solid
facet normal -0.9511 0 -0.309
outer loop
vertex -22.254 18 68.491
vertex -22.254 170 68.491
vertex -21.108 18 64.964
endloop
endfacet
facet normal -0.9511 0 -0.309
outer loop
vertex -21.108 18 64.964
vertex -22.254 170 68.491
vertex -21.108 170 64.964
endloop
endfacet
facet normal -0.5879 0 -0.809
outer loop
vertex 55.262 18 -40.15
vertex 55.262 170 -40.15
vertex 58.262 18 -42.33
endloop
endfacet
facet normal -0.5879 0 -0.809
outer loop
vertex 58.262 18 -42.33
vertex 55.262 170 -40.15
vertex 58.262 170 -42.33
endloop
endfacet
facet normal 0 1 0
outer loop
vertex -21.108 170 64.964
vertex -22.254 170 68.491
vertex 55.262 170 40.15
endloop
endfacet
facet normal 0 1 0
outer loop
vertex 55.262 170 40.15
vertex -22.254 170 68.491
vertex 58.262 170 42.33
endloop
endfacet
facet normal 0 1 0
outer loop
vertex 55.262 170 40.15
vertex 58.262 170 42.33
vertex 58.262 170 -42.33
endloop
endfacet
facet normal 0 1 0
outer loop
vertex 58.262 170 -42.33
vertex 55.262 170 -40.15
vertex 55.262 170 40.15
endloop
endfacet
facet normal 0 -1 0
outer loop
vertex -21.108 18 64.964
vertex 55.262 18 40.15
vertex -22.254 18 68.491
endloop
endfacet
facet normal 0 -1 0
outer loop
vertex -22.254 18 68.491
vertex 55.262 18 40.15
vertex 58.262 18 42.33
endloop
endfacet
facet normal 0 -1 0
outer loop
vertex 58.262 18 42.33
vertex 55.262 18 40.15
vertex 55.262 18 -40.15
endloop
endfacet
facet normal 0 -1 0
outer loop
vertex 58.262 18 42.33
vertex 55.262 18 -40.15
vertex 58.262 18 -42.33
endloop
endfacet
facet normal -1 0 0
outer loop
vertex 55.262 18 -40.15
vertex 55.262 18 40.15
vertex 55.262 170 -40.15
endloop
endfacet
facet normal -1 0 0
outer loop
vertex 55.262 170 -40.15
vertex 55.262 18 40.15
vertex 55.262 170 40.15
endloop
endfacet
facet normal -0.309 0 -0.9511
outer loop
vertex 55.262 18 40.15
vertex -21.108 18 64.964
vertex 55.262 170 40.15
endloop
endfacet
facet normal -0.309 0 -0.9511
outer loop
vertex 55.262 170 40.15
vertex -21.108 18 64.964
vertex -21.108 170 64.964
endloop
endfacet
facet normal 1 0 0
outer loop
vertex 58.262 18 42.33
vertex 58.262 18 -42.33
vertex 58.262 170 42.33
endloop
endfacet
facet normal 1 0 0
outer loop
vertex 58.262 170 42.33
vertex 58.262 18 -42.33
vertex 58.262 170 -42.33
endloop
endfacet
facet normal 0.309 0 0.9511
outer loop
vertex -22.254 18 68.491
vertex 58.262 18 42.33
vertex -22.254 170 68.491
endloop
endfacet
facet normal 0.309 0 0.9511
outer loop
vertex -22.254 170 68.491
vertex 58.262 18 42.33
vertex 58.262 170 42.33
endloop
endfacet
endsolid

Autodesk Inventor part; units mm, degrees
sketch "草图1" plane through (0, 0, 0) normal (0, 1, 0) x (-1, 0, 0)
  line L0 (82.5131, 0) -> (25.498, -78.4746)
  line L1 (25.498, -78.4746) -> (-66.7545, -48.5)
  line L2 (-66.7545, -48.5) -> (-66.7545, 48.5)
  line L3 (-66.7545, 48.5) -> (25.498, 78.4746)
  line L4 (25.498, 78.4746) -> (82.5131, 0)
  point P0 (0, 0)
  point P1 (0, 0)
  dimension "d0" = 97
ref_plane "工作平面1" through (0, 170, 0) normal (0, 1, 0) x (-1, 0, 0)
sketch "草图2" plane through (0, 170, 0) normal (0, 1, 0) x (-1, 0, 0)
  line L0 (105.0554, 0) -> (32.4639, -99.9136)
  line L1 (32.4639, -99.9136) -> (-84.9916, -61.75)
  line L2 (-84.9916, -61.75) -> (-84.9916, 61.75)
  line L3 (-84.9916, 61.75) -> (32.4639, 99.9136)
  line L4 (32.4639, 99.9136) -> (105.0554, 0)
  point P0 (0, 0)
  point P1 (0, 0)
  dimension "d2" = 123.5
loft "放样1" add profiles "草图2", "草图1"
sketch "草图3" plane through (84.9916, 170, 61.75) normal (0, 1, 0) x (1, 0, 0)
  line L0 (-153.2988, 61.75) -> (-106.0997, 126.7141)
  line L1 (-106.0997, 126.7141) -> (-29.7298, 101.9)
  line L2 (-29.7298, 101.9) -> (-29.7298, 21.6)
  line L3 (-29.7298, 21.6) -> (-106.0997, -3.2141)
  line L4 (-106.0997, -3.2141) -> (-153.2988, 61.75)
  point P0 (-84.9916, 61.75)
  point P1 (-84.9916, 61.75)
  dimension "d7" = 80.3
extrude "拉伸1" cut sketch "草图3" against normal blind 164
shell "抽壳1" thickness 3 removed faces 1 at (10.4732, 170, -75.5426)
sketch "草图5" plane through (66.7545, 0, -48.5) normal (0, -1, 0) x (1, 0, 0)
  line L0 (-98.0659, 144.8667) -> (-91.2229, 123.806) projected
  line L1 (-106.5917, 71.5) -> (-123.9122, 81.5)
  line L2 (-107.7408, 69.3836) -> (-125.561, 78.4634)
  arc A0 (-106.5917, 71.5) -> (-107.7408, 69.3836) centre (-66.7545, 48.5) ccw
  arc A1 (-123.9122, 81.5) -> (-125.561, 78.4634) centre (-66.7545, 48.5) ccw
  point P0 (-99.2814, 81.0269)
  dimension "d37" = 132
  dimension "d38" = 92
  dimension "d40" = 3
extrude "拉伸2" add sketch "草图5" along normal blind 3
sketch "草图7" plane through (66.7545, -3, -48.5) normal (0, -1, 0) x (1, 0, 0)
  arc A0 (-100.9392, 79.28) -> (-106.5917, 71.5) centre (-66.7545, 48.5) ccw
  arc A1 (-115.8021, 92.6626) -> (-125.561, 78.4634) centre (-66.7545, 48.5) ccw
  arc A2 (-100.9392, 79.28) -> (-107.7408, 69.3836) centre (-66.7545, 48.5) ccw
  line L0 (-100.9392, 79.28) -> (-115.8021, 92.6626)
  line L1 (-125.561, 78.4634) -> (-107.7408, 69.3836) projected
  line L2 (-107.7408, 69.3836) -> (-125.561, 78.4634)
  dimension "d25" = 92
  dimension "d41" = 15
extrude "拉伸3" add sketch "草图7" along normal blind 3
chamfer "倒角1" distance 1 angle 45 1 edges at (-41.6161, -3, 37.4713)
sketch "草图8" plane through (66.7545, 0, -48.5) normal (0, -1, 0) x (1, 0, 0)
  circle A0 centre (-66.7545, 48.5) radius 15
  dimension "d100" = 30
extrude "拉伸4" add sketch "草图8" along normal blind 30
pattern_circular "环形阵列1" count 10 over 360 about axis through (0, -10, 0) along (0, 1, 0) of "拉伸3", "拉伸2", "倒角1"
sketch "草图9" plane through (64.0591, 3, 46.5417) normal (0, 1, 0) x (1, 0, 0)
  line L0 (-132.3664, 46.5417) -> (-85.1672, 111.5058) projected
  line L1 (-85.1672, -18.4224) -> (-132.3664, 46.5417) projected
  line L2 (-8.7974, 6.3917) -> (-85.1672, -18.4224) projected
  line L3 (-8.7974, 86.6917) -> (-8.7974, 6.3917) projected
  line L4 (-85.1672, 111.5058) -> (-8.7974, 86.6917) projected
  line L5 (-136.0746, 46.5417) -> (-86.3131, -21.9491) projected
  line L6 (-86.3131, -21.9491) -> (-5.7974, 4.2121) projected
  line L7 (-5.7974, 4.2121) -> (-5.7974, 88.8713) projected
  line L8 (-5.7974, 88.8713) -> (-86.3131, 115.0325) projected
  line L9 (-86.3131, 115.0325) -> (-136.0746, 46.5417) projected
  line L10 (-85.1672, -18.4224) -> (-132.3664, 46.5417) projected
  line L11 (-132.3664, 46.5417) -> (-85.1672, 111.5058) projected
  line L12 (-85.1672, 111.5058) -> (-8.7974, 86.6917) projected
  line L13 (-8.7974, 86.6917) -> (-8.7974, 6.3917) projected
  line L14 (-8.7974, 6.3917) -> (-85.1672, -18.4224) projected
  line L15 (-143.2406, 46.5417) -> (-88.5276, 121.8477) projected
  line L16 (-88.5276, -28.7643) -> (-143.2406, 46.5417) projected
  line L17 (0, 0) -> (-88.5276, -28.7643) projected
  line L18 (0, 93.0834) -> (0, 0) projected
  line L19 (-88.5276, 121.8477) -> (0, 93.0834) projected
  line L20 (-145.4076, 46.5417) -> (-89.1972, 123.9087)
  line L21 (-89.1972, 123.9087) -> (1.7532, 94.3571)
  line L22 (1.7532, 94.3571) -> (1.7532, -1.2738)
  line L23 (1.7532, -1.2738) -> (-89.1972, -30.8253)
  line L24 (-89.1972, -30.8253) -> (-145.4076, 46.5417)
  point P0 (-64.0591, 46.5417)
extrude "拉伸5" add sketch "草图9" along normal blind 15 contours L15 L19 L18 L17 L16 | L20 L21 L22 L23 L24
sketch "草图10" plane through (84.9916, 6, 61.75) normal (0, 1, 0) x (1, 0, 0)
  line L0 (-153.2988, 61.75) -> (-106.0997, 126.7141) projected
  line L1 (-106.0997, -3.2141) -> (-153.2988, 61.75) projected
  line L2 (-29.7298, 21.6) -> (-106.0997, -3.2141) projected
  line L3 (-29.7298, 101.9) -> (-29.7298, 21.6) projected
  line L4 (-106.0997, 126.7141) -> (-29.7298, 101.9) projected
  line L5 (-107.2456, 130.2408) -> (-157.007, 61.75) projected
  line L6 (-26.7298, 104.0796) -> (-107.2456, 130.2408) projected
  line L7 (-26.7298, 19.4204) -> (-26.7298, 104.0796) projected
  line L8 (-107.2456, -6.7408) -> (-26.7298, 19.4204) projected
  line L9 (-157.007, 61.75) -> (-107.2456, -6.7408) projected
  line L10 (-166.1621, 61.75) -> (-110.0746, 138.9477) projected
  line L11 (-110.0746, -15.4477) -> (-166.1621, 61.75) projected
  line L12 (-19.3233, 14.0392) -> (-110.0746, -15.4477) projected
  line L13 (-19.3233, 109.4608) -> (-19.3233, 14.0392) projected
  line L14 (-110.0746, 138.9477) -> (-19.3233, 109.4608) projected
  point P0 (-84.9916, 61.75)
sketch "草图11" plane through (64.0591, 18, 46.5417) normal (0, 1, 0) x (1, 0, 0)
  line L0 (-64.0591, 46.5417) -> (2.6954, 46.5417) construction
  line L1 (-86.3131, 115.0325) -> (-136.0746, 46.5417) projected
  line L2 (-5.7974, 88.8713) -> (-86.3131, 115.0325) projected
  line L3 (-5.7974, 4.2121) -> (-5.7974, 88.8713) projected
  line L4 (-86.3131, -21.9491) -> (-5.7974, 4.2121) projected
  line L5 (-136.0746, 46.5417) -> (-86.3131, -21.9491) projected
  line L6 (-145.2296, 46.5417) -> (-89.1422, 123.7394) projected
  line L7 (-89.1422, -30.656) -> (-145.2296, 46.5417) projected
  line L8 (1.6092, -1.1691) -> (-89.1422, -30.656) projected
  line L9 (1.6092, 94.2525) -> (1.6092, -1.1691) projected
  line L10 (-89.1422, 123.7394) -> (1.6092, 94.2525) projected
  circle A0 centre (-2.0908, 11.2121) radius 1.25
  line L11 (-5.7974, 4.2121) -> (1.6092, -1.1691) construction
  line L12 (-5.7974, 4.2121) -> (-5.7974, 88.8713) projected
  line L13 (-86.3131, -21.9491) -> (-5.7974, 4.2121) projected
  line L14 (1.6092, -1.1691) -> (-89.1422, -30.656) projected
  line L15 (1.6092, 94.2525) -> (1.6092, -1.1691) projected
  circle A1 centre (-11.3094, -1.4762) radius 1.25
  line L16 (-2.0941, 7.5215) -> (-0.5941, 7.5215)
  line L17 (-0.5941, 7.5215) -> (-0.5941, 0.4317)
  line L18 (-2.0941, 7.5215) -> (-3.5941, 7.5215)
  line L19 (-3.5941, 7.5215) -> (-3.5941, 2.6113)
  line L20 (-7.8005, -0.3326) -> (-7.3369, -1.7592)
  line L21 (-7.3369, -1.7592) -> (-0.5941, 0.4317)
  line L22 (-7.8005, -0.3326) -> (-8.264, 1.094)
  line L23 (-8.264, 1.094) -> (-3.5941, 2.6113)
  dimension "d63" = 2.5
  dimension "d69" = 3.7
  dimension "d131" = 3.6906
extrude "拉伸7" cut sketch "草图11" against normal blind 3 contours A0 | A1 | L16 L17 L21 L20 L22 L23 L19 L18
extrude "拉伸8" add sketch "草图10" along normal blind 10 and the other way blind 3 contours L10 L14 L13 L12 L11
extrude "拉伸9" cut sketch "草图10" along normal blind 10 and the other way blind 3 contours L10 L14 L13 L12 L11
ref_plane "工作平面2" through (84.9916, 7, 61.75) normal (0, 1, 0) x (1, 0, 0)
sketch "草图12" plane through (84.9916, 7, 61.75) normal (0, 1, 0) x (1, 0, 0)
  line L0 (-107.2456, -6.7408) -> (-26.7298, 19.4204) projected
  line L1 (-60.7054, 8.3811) -> (-61.6324, 11.2342)
  line L2 (-29.7298, 21.6) -> (-106.0997, -3.2141) projected
  line L3 (-89.8404, 2.0689) -> (-88.9133, -0.7843)
  line L4 (-107.2456, -6.7408) -> (-26.7298, 19.4204) projected
  line L5 (-29.7298, 21.6) -> (-106.0997, -3.2141) projected
  line L6 (-63.5345, 10.6162) -> (-62.6075, 7.763)
  line L7 (-65.4366, 9.9982) -> (-64.5096, 7.145)
  line L8 (-67.3388, 9.3801) -> (-66.4117, 6.527)
  line L9 (-69.2409, 8.7621) -> (-68.3138, 5.9089)
  line L10 (-71.143, 8.1441) -> (-70.2159, 5.2909)
  line L11 (-73.0451, 7.526) -> (-72.118, 4.6729)
  line L12 (-74.9472, 6.908) -> (-74.0202, 4.0548)
  line L13 (-76.7905, 6.3091) -> (-75.7638, 3.4883)
  line L14 (-84.134, 3.923) -> (-83.207, 1.0698)
  line L15 (-86.0362, 3.305) -> (-85.1091, 0.4518)
  line L16 (-87.9383, 2.6869) -> (-87.0112, -0.1662)
  line L17 (-80.3298, 5.1591) -> (-79.4028, 2.3059)
  line L18 (-82.2319, 4.541) -> (-81.3049, 1.6879)
  line L19 (-78.4277, 5.7771) -> (-77.5006, 2.9239)
  line L20 (-61.6324, 11.2342) -> (-63.5345, 10.6162)
  line L21 (-62.6075, 7.763) -> (-60.7054, 8.3811)
  line L22 (-66.4117, 6.527) -> (-64.5096, 7.145)
  line L23 (-65.4366, 9.9982) -> (-67.3388, 9.3801)
  line L24 (-70.2159, 5.2909) -> (-68.3138, 5.9089)
  line L25 (-69.2409, 8.7621) -> (-71.143, 8.1441)
  line L26 (-74.0202, 4.0548) -> (-72.118, 4.6729)
  line L27 (-73.0451, 7.526) -> (-74.9472, 6.908)
  line L28 (-76.7905, 6.3091) -> (-78.4277, 5.7771)
  line L29 (-77.5006, 2.9239) -> (-75.7638, 3.4883)
  line L30 (-81.3049, 1.6879) -> (-79.4028, 2.3059)
  line L31 (-80.3298, 5.1591) -> (-82.2319, 4.541)
  line L32 (-84.134, 3.923) -> (-86.0362, 3.305)
  line L33 (-87.9383, 2.6869) -> (-89.8404, 2.0689)
  line L34 (-88.9133, -0.7843) -> (-87.0112, -0.1662)
  line L35 (-85.1091, 0.4518) -> (-83.207, 1.0698)
  line L36 (-58.8033, 8.9991) -> (-59.7303, 11.8523)
  line L37 (-56.9011, 9.6171) -> (-57.8282, 12.4703)
  line L38 (-54.999, 10.2352) -> (-55.9261, 13.0883)
  line L39 (-53.0969, 10.8532) -> (-54.024, 13.7064)
  point P0 (-84.9916, 61.75)
  dimension "d73" = 2
  dimension "d74" = 2
  dimension "d75" = 2
  dimension "d76" = 2
  dimension "d77" = 2
  dimension "d78" = 2
  dimension "d79" = 2
  dimension "d80" = 2
  dimension "d81" = 2
  dimension "d82" = 2
  dimension "d83" = 2
  dimension "d84" = 2
  dimension "d85" = 2
  dimension "d86" = 2
  dimension "d88" = 2
  dimension "d89" = 2
  dimension "d90" = 2
  dimension "d91" = 2
extrude "拉伸10" cut sketch "草图12" along normal blind 7 contours L3 L2 L16 L0 | L15 L2 L14 L0 | L18 L2 L17 L0 | L19 L2 L13 L0 | L12 L2 L11 L0 | L10 L2 L9 L0 | L8 L2 L7 L0 | L6 L2 L1 L0 | L36 L2 L37 L0 | L38 L2 L39 L0
pattern_circular "环形阵列2" count 5 over 360 about axis through (0, 0, 0) along (0, -1, 0) of "拉伸10"
sketch "草图13" plane through (66.7545, 0, -48.5) normal (0, -1, 0) x (1, 0, 0)
  line L0 (1.9326, 98.4258) -> (-1.1068, 96.2175) construction
  line L1 (18.2371, 110.25) -> (0, 97) construction
  line L2 (-16.2555, 104.3138) -> (1.9326, 98.4258)
  line L3 (1.9326, 98.4258) -> (1.9326, 79.28)
  line L4 (-14.6399, 100.6147) -> (-1.1068, 96.2175)
  line L5 (-1.0862, 96.2108) -> (-1.0862, 81.9597)
  line L6 (-1.0862, 81.9597) -> (1.9326, 79.28)
  line L7 (-14.6399, 100.6147) -> (-16.2555, 104.3138)
  line L8 (1.9326, 98.4258) -> (1.9326, 79.28)
  line L9 (1.9326, 79.28) -> (-1.0862, 81.9597)
  line L10 (-1.0862, 0.7892) -> (-1.0862, 96.2108) projected
  line L11 (-1.0862, 81.9597) -> (-1.0862, 96.2108)
  line L12 (-1.0862, 96.2108) -> (-14.6399, 100.6147)
  line L13 (-91.8376, 125.6977) -> (-1.0862, 96.2108) projected
  line L14 (0, 97) -> (-92.2525, 126.9746) projected
  line L15 (-14.6399, 100.6147) -> (-16.2555, 104.3138)
  line L16 (-16.2555, 104.3138) -> (1.9326, 98.4258)
  point P0 (-66.7545, 48.5)
  point P1 (18.2371, 110.25)
extrude "拉伸11" cut sketch "草图13" against normal blind 16
sketch "草图14" plane through (0, -30, 0) normal (0, -1, 0) x (1, 0, 0)
  line L0 (11.4602, -0.9019) -> (-11.5398, -0.9019)
  line L1 (-11.5398, -0.9019) -> (-11.5398, 0.7981)
  line L2 (-11.5398, 0.7981) -> (11.4602, 0.7981)
  line L3 (11.4602, 0.7981) -> (11.4602, -0.9019)
  line L4 (15.9292, -0.0519) -> (-16.622, -0.0519) construction
  line L5 (-0.0398, 4.6584) -> (-0.0398, -5.7431) construction
  point P0 (0, 0)
  dimension "d94" = 23
  dimension "d95" = 1.7
extrude "拉伸12" cut sketch "草图14" along normal blind 10 and the other way blind 54.75
sketch "草图15" plane through (0, -30, 0) normal (0, -1, 0) x (1, 0, 0)
  line L0 (11.4602, 0.7981) -> (-11.5398, 0.7981) projected
  line L1 (9.9602, 0.7981) -> (-10.0398, 0.7981)
  line L2 (-10.0398, 0.7981) -> (-10.0398, 2.5981)
  line L3 (-10.0398, 2.5981) -> (9.9602, 2.5981)
  line L4 (9.9602, 2.5981) -> (9.9602, 0.7981)
  line L5 (11.4602, -0.9019) -> (-11.5398, -0.9019) projected
  line L6 (-0.0398, 30.3943) -> (-0.0398, -31.216) construction
  point P0 (0, 0)
  dimension "d101" = 3.5
  dimension "d102" = 20
extrude "拉伸13" cut sketch "草图15" against normal blind 30
sketch "草图16" plane through (0, -30, 0) normal (0, -1, 0) x (1, 0, 0)
  line L0 (11.4602, 0.7981) -> (-11.5398, 0.7981) projected
  line L1 (-5.5398, 0.7981) -> (5.4602, 0.7981)
  line L2 (5.4602, 0.7981) -> (5.4602, 6.5981)
  line L3 (5.4602, 6.5981) -> (-5.5398, 6.5981)
  line L4 (-5.5398, 6.5981) -> (-5.5398, 0.7981)
  line L5 (11.4602, -0.9019) -> (-11.5398, -0.9019) projected
  line L6 (-0.0398, 25.7819) -> (-0.0398, -22.2478) construction
  point P0 (0, 0)
  dimension "d105" = 7.5
  dimension "d106" = 11
extrude "拉伸14" cut sketch "草图16" against normal blind 6
ref_plane "工作平面3" through (0, -28, 0) normal (0, -1, 0) x (1, 0, 0)
sketch "草图18" plane through (0, -28, 0) normal (0, -1, 0) x (1, 0, 0)
  line L0 (5.4602, 6.5981) -> (5.4602, 2.5981) projected
  line L1 (5.4602, 2.5981) -> (9.9602, 2.5981) projected
  line L2 (9.9602, 2.5981) -> (9.9602, 0.7981) projected
  line L3 (9.9602, 0.7981) -> (11.4602, 0.7981) projected
  line L4 (11.4602, 0.7981) -> (11.4602, -0.9019) projected
  line L5 (11.4602, -0.9019) -> (-11.5398, -0.9019) projected
  line L6 (-11.5398, -0.9019) -> (-11.5398, 0.7981) projected
  line L7 (-11.5398, 0.7981) -> (-10.0398, 0.7981) projected
  line L8 (-10.0398, 0.7981) -> (-10.0398, 2.5981) projected
  line L9 (-10.0398, 2.5981) -> (-5.5398, 2.5981) projected
  line L10 (-5.5398, 2.5981) -> (-5.5398, 6.5981) projected
  line L11 (-5.5398, 6.5981) -> (5.4602, 6.5981) projected
  circle A0 centre (0, 0) radius 15 projected
  line L12 (-12.5398, -1.9019) -> (12.4602, -1.9019)
  line L13 (12.4602, -1.9019) -> (12.4602, 1.7981)
  line L14 (12.4602, 1.7981) -> (10.9602, 1.7981)
  line L15 (10.9602, 1.7981) -> (10.9602, 3.5981)
  line L16 (10.9602, 3.5981) -> (6.4602, 3.5981)
  line L17 (6.4602, 3.5981) -> (6.4602, 7.5981)
  line L18 (6.4602, 7.5981) -> (-6.5398, 7.5981)
  line L19 (-6.5398, 7.5981) -> (-6.5398, 3.5981)
  line L20 (-6.5398, 3.5981) -> (-11.0398, 3.5981)
  line L21 (-11.0398, 3.5981) -> (-11.0398, 1.7981)
  line L22 (-11.0398, 1.7981) -> (-12.5398, 1.7981)
  line L23 (-12.5398, 1.7981) -> (-12.5398, -1.9019)
  circle A1 centre (0, 0) radius 14
  point P0 (0, 0)
  dimension "d110" = 1
  dimension "d111" = 1
extrude "拉伸15" cut sketch "草图18" against normal blind 30 contours A1
sketch "草图19" plane through (66.7545, 0, -48.5) normal (0, -1, 0) x (1, 0, 0)
  line L0 (-60.2943, 56.0981) -> (-73.2943, 56.0981) projected
  line L1 (-73.2943, 52.0981) -> (-77.7943, 52.0981) projected
  line L2 (-60.2943, 56.0981) -> (-73.2943, 56.0981)
  line L3 (-73.2943, 56.0981) -> (-73.2943, 52.0981)
  line L4 (-73.2943, 52.0981) -> (-60.2943, 52.0981)
  line L5 (-60.2943, 52.0981) -> (-60.2943, 56.0981)
  point P0 (-66.7545, 48.5)
extrude "拉伸16" cut sketch "草图19" along normal blind 22 and the other way blind 2
sketch "草图21" plane through (0, -30, 0) normal (0, -1, 0) x (1, 0, 0)
  line L0 (5.4602, 6.5981) -> (5.4602, 2.5981) projected
  line L1 (5.4602, 2.5981) -> (9.9602, 2.5981) projected
  line L2 (9.9602, 2.5981) -> (9.9602, 0.7981) projected
  line L3 (9.9602, 0.7981) -> (11.4602, 0.7981) projected
  line L4 (11.4602, 0.7981) -> (11.4602, -0.9019) projected
  line L5 (11.4602, -0.9019) -> (-11.5398, -0.9019) projected
  line L6 (-11.5398, -0.9019) -> (-11.5398, 0.7981) projected
  line L7 (-11.5398, 0.7981) -> (-10.0398, 0.7981) projected
  line L8 (-10.0398, 0.7981) -> (-10.0398, 2.5981) projected
  line L9 (-10.0398, 2.5981) -> (-5.5398, 2.5981) projected
  line L10 (-5.5398, 2.5981) -> (-5.5398, 6.5981) projected
  line L11 (-5.5398, 6.5981) -> (5.4602, 6.5981) projected
  circle A0 centre (0, 0) radius 15 projected
  point P0 (0, 0)
extrude "拉伸17" add sketch "草图21" along normal blind 3
sketch "草图22" plane through (5.4602, -24, 6.5981) normal (0, 0, -1) x (-1, 0, 0)
  line L0 (9.1141, -4) -> (1.9525, -4)
  line L1 (1.9525, -4) -> (9.1141, -4)
  line L2 (9.1141, -4) -> (9.1141, -9.2971)
  line L3 (9.1141, -9.2971) -> (1.9525, -9.2971)
  line L4 (1.9525, -9.2971) -> (1.9525, -4)
  point P0 (5.4602, 24)
extrude "拉伸18" cut sketch "草图22" against normal blind 10
sketch "草图23" plane through (0, -33, 0) normal (0, -1, 0) x (1, 0, 0)
  line L0 (5.555, -0.8779) -> (-5.9531, -0.8779)
  line L1 (-5.9531, -0.8779) -> (-5.9531, -3.3779)
  line L2 (-5.9531, -3.3779) -> (5.555, -3.3779)
  line L3 (5.555, -3.3779) -> (5.555, -0.8779)
  point P0 (0, 0)
  dimension "d125" = 2.5
extrude "拉伸19" cut sketch "草图23" against normal blind 10
sketch "草图24" plane through (64.0591, 18, 46.5417) normal (0, 1, 0) x (1, 0, 0)
  line L0 (-5.7974, 4.2121) -> (-5.7974, 88.8713) projected
  circle A0 centre (-64.0591, 46.5417) radius 14 projected
  line L1 (-75.5989, 45.7436) -> (-75.5989, 47.4436) projected
  line L2 (-75.5989, 47.4436) -> (-52.5989, 47.4436) projected
  line L3 (-52.5989, 47.4436) -> (-52.5989, 45.7436) projected
  line L4 (-52.5989, 45.7436) -> (-75.5989, 45.7436) projected
  line L5 (-132.3664, 46.5417) -> (-85.1672, 111.5058) projected
  line L6 (-85.1672, -18.4224) -> (-132.3664, 46.5417) projected
  line L7 (-8.7974, 6.3917) -> (-85.1672, -18.4224) projected
  line L8 (-8.7974, 86.6917) -> (-8.7974, 6.3917) projected
  line L9 (-85.1672, 111.5058) -> (-8.7974, 86.6917) projected
  line L10 (-87.2718, 117.9831) -> (-139.177, 46.5417)
  line L11 (-139.177, 46.5417) -> (-87.2718, -24.8997)
  line L12 (-87.2718, -24.8997) -> (-3.2875, 2.3885)
  line L13 (-3.2875, 2.3885) -> (-3.2875, 90.6949)
  line L14 (-3.2875, 90.6949) -> (-87.2718, 117.9831)
  point P0 (-64.0591, 46.5417)
extrude "拉伸20" cut sketch "草图24" along normal blind 300 contours L5 L9 L8 L7 L6 | L14 L13 L12 L11 L10 keep common part
sketch "草图25" plane through (58.2617, 170, 42.3296) normal (0, 1, 0) x (1, 0, 0)
  line L0 (0, 84.6593) -> (-80.5157, 110.8204) projected
  line L1 (-58.2617, 42.3296) -> (0, 84.6593)
  line L2 (0, 84.6593) -> (84.1147, -16.0689)
  line L3 (84.1147, -16.0689) -> (-101.6889, -60.8833)
  line L4 (-130.2772, 42.3296) -> (-80.5157, -26.1611) projected
  line L5 (-101.6889, -60.8833) -> (-80.5157, -26.1611)
  line L6 (-80.5157, -26.1611) -> (-58.2617, 42.3296)
  point P0 (0, 0)
extrude "拉伸21" cut sketch "草图25" against normal blind 10010 keep common part
properties part number "花盆主体" material "尼龙 6/6"
